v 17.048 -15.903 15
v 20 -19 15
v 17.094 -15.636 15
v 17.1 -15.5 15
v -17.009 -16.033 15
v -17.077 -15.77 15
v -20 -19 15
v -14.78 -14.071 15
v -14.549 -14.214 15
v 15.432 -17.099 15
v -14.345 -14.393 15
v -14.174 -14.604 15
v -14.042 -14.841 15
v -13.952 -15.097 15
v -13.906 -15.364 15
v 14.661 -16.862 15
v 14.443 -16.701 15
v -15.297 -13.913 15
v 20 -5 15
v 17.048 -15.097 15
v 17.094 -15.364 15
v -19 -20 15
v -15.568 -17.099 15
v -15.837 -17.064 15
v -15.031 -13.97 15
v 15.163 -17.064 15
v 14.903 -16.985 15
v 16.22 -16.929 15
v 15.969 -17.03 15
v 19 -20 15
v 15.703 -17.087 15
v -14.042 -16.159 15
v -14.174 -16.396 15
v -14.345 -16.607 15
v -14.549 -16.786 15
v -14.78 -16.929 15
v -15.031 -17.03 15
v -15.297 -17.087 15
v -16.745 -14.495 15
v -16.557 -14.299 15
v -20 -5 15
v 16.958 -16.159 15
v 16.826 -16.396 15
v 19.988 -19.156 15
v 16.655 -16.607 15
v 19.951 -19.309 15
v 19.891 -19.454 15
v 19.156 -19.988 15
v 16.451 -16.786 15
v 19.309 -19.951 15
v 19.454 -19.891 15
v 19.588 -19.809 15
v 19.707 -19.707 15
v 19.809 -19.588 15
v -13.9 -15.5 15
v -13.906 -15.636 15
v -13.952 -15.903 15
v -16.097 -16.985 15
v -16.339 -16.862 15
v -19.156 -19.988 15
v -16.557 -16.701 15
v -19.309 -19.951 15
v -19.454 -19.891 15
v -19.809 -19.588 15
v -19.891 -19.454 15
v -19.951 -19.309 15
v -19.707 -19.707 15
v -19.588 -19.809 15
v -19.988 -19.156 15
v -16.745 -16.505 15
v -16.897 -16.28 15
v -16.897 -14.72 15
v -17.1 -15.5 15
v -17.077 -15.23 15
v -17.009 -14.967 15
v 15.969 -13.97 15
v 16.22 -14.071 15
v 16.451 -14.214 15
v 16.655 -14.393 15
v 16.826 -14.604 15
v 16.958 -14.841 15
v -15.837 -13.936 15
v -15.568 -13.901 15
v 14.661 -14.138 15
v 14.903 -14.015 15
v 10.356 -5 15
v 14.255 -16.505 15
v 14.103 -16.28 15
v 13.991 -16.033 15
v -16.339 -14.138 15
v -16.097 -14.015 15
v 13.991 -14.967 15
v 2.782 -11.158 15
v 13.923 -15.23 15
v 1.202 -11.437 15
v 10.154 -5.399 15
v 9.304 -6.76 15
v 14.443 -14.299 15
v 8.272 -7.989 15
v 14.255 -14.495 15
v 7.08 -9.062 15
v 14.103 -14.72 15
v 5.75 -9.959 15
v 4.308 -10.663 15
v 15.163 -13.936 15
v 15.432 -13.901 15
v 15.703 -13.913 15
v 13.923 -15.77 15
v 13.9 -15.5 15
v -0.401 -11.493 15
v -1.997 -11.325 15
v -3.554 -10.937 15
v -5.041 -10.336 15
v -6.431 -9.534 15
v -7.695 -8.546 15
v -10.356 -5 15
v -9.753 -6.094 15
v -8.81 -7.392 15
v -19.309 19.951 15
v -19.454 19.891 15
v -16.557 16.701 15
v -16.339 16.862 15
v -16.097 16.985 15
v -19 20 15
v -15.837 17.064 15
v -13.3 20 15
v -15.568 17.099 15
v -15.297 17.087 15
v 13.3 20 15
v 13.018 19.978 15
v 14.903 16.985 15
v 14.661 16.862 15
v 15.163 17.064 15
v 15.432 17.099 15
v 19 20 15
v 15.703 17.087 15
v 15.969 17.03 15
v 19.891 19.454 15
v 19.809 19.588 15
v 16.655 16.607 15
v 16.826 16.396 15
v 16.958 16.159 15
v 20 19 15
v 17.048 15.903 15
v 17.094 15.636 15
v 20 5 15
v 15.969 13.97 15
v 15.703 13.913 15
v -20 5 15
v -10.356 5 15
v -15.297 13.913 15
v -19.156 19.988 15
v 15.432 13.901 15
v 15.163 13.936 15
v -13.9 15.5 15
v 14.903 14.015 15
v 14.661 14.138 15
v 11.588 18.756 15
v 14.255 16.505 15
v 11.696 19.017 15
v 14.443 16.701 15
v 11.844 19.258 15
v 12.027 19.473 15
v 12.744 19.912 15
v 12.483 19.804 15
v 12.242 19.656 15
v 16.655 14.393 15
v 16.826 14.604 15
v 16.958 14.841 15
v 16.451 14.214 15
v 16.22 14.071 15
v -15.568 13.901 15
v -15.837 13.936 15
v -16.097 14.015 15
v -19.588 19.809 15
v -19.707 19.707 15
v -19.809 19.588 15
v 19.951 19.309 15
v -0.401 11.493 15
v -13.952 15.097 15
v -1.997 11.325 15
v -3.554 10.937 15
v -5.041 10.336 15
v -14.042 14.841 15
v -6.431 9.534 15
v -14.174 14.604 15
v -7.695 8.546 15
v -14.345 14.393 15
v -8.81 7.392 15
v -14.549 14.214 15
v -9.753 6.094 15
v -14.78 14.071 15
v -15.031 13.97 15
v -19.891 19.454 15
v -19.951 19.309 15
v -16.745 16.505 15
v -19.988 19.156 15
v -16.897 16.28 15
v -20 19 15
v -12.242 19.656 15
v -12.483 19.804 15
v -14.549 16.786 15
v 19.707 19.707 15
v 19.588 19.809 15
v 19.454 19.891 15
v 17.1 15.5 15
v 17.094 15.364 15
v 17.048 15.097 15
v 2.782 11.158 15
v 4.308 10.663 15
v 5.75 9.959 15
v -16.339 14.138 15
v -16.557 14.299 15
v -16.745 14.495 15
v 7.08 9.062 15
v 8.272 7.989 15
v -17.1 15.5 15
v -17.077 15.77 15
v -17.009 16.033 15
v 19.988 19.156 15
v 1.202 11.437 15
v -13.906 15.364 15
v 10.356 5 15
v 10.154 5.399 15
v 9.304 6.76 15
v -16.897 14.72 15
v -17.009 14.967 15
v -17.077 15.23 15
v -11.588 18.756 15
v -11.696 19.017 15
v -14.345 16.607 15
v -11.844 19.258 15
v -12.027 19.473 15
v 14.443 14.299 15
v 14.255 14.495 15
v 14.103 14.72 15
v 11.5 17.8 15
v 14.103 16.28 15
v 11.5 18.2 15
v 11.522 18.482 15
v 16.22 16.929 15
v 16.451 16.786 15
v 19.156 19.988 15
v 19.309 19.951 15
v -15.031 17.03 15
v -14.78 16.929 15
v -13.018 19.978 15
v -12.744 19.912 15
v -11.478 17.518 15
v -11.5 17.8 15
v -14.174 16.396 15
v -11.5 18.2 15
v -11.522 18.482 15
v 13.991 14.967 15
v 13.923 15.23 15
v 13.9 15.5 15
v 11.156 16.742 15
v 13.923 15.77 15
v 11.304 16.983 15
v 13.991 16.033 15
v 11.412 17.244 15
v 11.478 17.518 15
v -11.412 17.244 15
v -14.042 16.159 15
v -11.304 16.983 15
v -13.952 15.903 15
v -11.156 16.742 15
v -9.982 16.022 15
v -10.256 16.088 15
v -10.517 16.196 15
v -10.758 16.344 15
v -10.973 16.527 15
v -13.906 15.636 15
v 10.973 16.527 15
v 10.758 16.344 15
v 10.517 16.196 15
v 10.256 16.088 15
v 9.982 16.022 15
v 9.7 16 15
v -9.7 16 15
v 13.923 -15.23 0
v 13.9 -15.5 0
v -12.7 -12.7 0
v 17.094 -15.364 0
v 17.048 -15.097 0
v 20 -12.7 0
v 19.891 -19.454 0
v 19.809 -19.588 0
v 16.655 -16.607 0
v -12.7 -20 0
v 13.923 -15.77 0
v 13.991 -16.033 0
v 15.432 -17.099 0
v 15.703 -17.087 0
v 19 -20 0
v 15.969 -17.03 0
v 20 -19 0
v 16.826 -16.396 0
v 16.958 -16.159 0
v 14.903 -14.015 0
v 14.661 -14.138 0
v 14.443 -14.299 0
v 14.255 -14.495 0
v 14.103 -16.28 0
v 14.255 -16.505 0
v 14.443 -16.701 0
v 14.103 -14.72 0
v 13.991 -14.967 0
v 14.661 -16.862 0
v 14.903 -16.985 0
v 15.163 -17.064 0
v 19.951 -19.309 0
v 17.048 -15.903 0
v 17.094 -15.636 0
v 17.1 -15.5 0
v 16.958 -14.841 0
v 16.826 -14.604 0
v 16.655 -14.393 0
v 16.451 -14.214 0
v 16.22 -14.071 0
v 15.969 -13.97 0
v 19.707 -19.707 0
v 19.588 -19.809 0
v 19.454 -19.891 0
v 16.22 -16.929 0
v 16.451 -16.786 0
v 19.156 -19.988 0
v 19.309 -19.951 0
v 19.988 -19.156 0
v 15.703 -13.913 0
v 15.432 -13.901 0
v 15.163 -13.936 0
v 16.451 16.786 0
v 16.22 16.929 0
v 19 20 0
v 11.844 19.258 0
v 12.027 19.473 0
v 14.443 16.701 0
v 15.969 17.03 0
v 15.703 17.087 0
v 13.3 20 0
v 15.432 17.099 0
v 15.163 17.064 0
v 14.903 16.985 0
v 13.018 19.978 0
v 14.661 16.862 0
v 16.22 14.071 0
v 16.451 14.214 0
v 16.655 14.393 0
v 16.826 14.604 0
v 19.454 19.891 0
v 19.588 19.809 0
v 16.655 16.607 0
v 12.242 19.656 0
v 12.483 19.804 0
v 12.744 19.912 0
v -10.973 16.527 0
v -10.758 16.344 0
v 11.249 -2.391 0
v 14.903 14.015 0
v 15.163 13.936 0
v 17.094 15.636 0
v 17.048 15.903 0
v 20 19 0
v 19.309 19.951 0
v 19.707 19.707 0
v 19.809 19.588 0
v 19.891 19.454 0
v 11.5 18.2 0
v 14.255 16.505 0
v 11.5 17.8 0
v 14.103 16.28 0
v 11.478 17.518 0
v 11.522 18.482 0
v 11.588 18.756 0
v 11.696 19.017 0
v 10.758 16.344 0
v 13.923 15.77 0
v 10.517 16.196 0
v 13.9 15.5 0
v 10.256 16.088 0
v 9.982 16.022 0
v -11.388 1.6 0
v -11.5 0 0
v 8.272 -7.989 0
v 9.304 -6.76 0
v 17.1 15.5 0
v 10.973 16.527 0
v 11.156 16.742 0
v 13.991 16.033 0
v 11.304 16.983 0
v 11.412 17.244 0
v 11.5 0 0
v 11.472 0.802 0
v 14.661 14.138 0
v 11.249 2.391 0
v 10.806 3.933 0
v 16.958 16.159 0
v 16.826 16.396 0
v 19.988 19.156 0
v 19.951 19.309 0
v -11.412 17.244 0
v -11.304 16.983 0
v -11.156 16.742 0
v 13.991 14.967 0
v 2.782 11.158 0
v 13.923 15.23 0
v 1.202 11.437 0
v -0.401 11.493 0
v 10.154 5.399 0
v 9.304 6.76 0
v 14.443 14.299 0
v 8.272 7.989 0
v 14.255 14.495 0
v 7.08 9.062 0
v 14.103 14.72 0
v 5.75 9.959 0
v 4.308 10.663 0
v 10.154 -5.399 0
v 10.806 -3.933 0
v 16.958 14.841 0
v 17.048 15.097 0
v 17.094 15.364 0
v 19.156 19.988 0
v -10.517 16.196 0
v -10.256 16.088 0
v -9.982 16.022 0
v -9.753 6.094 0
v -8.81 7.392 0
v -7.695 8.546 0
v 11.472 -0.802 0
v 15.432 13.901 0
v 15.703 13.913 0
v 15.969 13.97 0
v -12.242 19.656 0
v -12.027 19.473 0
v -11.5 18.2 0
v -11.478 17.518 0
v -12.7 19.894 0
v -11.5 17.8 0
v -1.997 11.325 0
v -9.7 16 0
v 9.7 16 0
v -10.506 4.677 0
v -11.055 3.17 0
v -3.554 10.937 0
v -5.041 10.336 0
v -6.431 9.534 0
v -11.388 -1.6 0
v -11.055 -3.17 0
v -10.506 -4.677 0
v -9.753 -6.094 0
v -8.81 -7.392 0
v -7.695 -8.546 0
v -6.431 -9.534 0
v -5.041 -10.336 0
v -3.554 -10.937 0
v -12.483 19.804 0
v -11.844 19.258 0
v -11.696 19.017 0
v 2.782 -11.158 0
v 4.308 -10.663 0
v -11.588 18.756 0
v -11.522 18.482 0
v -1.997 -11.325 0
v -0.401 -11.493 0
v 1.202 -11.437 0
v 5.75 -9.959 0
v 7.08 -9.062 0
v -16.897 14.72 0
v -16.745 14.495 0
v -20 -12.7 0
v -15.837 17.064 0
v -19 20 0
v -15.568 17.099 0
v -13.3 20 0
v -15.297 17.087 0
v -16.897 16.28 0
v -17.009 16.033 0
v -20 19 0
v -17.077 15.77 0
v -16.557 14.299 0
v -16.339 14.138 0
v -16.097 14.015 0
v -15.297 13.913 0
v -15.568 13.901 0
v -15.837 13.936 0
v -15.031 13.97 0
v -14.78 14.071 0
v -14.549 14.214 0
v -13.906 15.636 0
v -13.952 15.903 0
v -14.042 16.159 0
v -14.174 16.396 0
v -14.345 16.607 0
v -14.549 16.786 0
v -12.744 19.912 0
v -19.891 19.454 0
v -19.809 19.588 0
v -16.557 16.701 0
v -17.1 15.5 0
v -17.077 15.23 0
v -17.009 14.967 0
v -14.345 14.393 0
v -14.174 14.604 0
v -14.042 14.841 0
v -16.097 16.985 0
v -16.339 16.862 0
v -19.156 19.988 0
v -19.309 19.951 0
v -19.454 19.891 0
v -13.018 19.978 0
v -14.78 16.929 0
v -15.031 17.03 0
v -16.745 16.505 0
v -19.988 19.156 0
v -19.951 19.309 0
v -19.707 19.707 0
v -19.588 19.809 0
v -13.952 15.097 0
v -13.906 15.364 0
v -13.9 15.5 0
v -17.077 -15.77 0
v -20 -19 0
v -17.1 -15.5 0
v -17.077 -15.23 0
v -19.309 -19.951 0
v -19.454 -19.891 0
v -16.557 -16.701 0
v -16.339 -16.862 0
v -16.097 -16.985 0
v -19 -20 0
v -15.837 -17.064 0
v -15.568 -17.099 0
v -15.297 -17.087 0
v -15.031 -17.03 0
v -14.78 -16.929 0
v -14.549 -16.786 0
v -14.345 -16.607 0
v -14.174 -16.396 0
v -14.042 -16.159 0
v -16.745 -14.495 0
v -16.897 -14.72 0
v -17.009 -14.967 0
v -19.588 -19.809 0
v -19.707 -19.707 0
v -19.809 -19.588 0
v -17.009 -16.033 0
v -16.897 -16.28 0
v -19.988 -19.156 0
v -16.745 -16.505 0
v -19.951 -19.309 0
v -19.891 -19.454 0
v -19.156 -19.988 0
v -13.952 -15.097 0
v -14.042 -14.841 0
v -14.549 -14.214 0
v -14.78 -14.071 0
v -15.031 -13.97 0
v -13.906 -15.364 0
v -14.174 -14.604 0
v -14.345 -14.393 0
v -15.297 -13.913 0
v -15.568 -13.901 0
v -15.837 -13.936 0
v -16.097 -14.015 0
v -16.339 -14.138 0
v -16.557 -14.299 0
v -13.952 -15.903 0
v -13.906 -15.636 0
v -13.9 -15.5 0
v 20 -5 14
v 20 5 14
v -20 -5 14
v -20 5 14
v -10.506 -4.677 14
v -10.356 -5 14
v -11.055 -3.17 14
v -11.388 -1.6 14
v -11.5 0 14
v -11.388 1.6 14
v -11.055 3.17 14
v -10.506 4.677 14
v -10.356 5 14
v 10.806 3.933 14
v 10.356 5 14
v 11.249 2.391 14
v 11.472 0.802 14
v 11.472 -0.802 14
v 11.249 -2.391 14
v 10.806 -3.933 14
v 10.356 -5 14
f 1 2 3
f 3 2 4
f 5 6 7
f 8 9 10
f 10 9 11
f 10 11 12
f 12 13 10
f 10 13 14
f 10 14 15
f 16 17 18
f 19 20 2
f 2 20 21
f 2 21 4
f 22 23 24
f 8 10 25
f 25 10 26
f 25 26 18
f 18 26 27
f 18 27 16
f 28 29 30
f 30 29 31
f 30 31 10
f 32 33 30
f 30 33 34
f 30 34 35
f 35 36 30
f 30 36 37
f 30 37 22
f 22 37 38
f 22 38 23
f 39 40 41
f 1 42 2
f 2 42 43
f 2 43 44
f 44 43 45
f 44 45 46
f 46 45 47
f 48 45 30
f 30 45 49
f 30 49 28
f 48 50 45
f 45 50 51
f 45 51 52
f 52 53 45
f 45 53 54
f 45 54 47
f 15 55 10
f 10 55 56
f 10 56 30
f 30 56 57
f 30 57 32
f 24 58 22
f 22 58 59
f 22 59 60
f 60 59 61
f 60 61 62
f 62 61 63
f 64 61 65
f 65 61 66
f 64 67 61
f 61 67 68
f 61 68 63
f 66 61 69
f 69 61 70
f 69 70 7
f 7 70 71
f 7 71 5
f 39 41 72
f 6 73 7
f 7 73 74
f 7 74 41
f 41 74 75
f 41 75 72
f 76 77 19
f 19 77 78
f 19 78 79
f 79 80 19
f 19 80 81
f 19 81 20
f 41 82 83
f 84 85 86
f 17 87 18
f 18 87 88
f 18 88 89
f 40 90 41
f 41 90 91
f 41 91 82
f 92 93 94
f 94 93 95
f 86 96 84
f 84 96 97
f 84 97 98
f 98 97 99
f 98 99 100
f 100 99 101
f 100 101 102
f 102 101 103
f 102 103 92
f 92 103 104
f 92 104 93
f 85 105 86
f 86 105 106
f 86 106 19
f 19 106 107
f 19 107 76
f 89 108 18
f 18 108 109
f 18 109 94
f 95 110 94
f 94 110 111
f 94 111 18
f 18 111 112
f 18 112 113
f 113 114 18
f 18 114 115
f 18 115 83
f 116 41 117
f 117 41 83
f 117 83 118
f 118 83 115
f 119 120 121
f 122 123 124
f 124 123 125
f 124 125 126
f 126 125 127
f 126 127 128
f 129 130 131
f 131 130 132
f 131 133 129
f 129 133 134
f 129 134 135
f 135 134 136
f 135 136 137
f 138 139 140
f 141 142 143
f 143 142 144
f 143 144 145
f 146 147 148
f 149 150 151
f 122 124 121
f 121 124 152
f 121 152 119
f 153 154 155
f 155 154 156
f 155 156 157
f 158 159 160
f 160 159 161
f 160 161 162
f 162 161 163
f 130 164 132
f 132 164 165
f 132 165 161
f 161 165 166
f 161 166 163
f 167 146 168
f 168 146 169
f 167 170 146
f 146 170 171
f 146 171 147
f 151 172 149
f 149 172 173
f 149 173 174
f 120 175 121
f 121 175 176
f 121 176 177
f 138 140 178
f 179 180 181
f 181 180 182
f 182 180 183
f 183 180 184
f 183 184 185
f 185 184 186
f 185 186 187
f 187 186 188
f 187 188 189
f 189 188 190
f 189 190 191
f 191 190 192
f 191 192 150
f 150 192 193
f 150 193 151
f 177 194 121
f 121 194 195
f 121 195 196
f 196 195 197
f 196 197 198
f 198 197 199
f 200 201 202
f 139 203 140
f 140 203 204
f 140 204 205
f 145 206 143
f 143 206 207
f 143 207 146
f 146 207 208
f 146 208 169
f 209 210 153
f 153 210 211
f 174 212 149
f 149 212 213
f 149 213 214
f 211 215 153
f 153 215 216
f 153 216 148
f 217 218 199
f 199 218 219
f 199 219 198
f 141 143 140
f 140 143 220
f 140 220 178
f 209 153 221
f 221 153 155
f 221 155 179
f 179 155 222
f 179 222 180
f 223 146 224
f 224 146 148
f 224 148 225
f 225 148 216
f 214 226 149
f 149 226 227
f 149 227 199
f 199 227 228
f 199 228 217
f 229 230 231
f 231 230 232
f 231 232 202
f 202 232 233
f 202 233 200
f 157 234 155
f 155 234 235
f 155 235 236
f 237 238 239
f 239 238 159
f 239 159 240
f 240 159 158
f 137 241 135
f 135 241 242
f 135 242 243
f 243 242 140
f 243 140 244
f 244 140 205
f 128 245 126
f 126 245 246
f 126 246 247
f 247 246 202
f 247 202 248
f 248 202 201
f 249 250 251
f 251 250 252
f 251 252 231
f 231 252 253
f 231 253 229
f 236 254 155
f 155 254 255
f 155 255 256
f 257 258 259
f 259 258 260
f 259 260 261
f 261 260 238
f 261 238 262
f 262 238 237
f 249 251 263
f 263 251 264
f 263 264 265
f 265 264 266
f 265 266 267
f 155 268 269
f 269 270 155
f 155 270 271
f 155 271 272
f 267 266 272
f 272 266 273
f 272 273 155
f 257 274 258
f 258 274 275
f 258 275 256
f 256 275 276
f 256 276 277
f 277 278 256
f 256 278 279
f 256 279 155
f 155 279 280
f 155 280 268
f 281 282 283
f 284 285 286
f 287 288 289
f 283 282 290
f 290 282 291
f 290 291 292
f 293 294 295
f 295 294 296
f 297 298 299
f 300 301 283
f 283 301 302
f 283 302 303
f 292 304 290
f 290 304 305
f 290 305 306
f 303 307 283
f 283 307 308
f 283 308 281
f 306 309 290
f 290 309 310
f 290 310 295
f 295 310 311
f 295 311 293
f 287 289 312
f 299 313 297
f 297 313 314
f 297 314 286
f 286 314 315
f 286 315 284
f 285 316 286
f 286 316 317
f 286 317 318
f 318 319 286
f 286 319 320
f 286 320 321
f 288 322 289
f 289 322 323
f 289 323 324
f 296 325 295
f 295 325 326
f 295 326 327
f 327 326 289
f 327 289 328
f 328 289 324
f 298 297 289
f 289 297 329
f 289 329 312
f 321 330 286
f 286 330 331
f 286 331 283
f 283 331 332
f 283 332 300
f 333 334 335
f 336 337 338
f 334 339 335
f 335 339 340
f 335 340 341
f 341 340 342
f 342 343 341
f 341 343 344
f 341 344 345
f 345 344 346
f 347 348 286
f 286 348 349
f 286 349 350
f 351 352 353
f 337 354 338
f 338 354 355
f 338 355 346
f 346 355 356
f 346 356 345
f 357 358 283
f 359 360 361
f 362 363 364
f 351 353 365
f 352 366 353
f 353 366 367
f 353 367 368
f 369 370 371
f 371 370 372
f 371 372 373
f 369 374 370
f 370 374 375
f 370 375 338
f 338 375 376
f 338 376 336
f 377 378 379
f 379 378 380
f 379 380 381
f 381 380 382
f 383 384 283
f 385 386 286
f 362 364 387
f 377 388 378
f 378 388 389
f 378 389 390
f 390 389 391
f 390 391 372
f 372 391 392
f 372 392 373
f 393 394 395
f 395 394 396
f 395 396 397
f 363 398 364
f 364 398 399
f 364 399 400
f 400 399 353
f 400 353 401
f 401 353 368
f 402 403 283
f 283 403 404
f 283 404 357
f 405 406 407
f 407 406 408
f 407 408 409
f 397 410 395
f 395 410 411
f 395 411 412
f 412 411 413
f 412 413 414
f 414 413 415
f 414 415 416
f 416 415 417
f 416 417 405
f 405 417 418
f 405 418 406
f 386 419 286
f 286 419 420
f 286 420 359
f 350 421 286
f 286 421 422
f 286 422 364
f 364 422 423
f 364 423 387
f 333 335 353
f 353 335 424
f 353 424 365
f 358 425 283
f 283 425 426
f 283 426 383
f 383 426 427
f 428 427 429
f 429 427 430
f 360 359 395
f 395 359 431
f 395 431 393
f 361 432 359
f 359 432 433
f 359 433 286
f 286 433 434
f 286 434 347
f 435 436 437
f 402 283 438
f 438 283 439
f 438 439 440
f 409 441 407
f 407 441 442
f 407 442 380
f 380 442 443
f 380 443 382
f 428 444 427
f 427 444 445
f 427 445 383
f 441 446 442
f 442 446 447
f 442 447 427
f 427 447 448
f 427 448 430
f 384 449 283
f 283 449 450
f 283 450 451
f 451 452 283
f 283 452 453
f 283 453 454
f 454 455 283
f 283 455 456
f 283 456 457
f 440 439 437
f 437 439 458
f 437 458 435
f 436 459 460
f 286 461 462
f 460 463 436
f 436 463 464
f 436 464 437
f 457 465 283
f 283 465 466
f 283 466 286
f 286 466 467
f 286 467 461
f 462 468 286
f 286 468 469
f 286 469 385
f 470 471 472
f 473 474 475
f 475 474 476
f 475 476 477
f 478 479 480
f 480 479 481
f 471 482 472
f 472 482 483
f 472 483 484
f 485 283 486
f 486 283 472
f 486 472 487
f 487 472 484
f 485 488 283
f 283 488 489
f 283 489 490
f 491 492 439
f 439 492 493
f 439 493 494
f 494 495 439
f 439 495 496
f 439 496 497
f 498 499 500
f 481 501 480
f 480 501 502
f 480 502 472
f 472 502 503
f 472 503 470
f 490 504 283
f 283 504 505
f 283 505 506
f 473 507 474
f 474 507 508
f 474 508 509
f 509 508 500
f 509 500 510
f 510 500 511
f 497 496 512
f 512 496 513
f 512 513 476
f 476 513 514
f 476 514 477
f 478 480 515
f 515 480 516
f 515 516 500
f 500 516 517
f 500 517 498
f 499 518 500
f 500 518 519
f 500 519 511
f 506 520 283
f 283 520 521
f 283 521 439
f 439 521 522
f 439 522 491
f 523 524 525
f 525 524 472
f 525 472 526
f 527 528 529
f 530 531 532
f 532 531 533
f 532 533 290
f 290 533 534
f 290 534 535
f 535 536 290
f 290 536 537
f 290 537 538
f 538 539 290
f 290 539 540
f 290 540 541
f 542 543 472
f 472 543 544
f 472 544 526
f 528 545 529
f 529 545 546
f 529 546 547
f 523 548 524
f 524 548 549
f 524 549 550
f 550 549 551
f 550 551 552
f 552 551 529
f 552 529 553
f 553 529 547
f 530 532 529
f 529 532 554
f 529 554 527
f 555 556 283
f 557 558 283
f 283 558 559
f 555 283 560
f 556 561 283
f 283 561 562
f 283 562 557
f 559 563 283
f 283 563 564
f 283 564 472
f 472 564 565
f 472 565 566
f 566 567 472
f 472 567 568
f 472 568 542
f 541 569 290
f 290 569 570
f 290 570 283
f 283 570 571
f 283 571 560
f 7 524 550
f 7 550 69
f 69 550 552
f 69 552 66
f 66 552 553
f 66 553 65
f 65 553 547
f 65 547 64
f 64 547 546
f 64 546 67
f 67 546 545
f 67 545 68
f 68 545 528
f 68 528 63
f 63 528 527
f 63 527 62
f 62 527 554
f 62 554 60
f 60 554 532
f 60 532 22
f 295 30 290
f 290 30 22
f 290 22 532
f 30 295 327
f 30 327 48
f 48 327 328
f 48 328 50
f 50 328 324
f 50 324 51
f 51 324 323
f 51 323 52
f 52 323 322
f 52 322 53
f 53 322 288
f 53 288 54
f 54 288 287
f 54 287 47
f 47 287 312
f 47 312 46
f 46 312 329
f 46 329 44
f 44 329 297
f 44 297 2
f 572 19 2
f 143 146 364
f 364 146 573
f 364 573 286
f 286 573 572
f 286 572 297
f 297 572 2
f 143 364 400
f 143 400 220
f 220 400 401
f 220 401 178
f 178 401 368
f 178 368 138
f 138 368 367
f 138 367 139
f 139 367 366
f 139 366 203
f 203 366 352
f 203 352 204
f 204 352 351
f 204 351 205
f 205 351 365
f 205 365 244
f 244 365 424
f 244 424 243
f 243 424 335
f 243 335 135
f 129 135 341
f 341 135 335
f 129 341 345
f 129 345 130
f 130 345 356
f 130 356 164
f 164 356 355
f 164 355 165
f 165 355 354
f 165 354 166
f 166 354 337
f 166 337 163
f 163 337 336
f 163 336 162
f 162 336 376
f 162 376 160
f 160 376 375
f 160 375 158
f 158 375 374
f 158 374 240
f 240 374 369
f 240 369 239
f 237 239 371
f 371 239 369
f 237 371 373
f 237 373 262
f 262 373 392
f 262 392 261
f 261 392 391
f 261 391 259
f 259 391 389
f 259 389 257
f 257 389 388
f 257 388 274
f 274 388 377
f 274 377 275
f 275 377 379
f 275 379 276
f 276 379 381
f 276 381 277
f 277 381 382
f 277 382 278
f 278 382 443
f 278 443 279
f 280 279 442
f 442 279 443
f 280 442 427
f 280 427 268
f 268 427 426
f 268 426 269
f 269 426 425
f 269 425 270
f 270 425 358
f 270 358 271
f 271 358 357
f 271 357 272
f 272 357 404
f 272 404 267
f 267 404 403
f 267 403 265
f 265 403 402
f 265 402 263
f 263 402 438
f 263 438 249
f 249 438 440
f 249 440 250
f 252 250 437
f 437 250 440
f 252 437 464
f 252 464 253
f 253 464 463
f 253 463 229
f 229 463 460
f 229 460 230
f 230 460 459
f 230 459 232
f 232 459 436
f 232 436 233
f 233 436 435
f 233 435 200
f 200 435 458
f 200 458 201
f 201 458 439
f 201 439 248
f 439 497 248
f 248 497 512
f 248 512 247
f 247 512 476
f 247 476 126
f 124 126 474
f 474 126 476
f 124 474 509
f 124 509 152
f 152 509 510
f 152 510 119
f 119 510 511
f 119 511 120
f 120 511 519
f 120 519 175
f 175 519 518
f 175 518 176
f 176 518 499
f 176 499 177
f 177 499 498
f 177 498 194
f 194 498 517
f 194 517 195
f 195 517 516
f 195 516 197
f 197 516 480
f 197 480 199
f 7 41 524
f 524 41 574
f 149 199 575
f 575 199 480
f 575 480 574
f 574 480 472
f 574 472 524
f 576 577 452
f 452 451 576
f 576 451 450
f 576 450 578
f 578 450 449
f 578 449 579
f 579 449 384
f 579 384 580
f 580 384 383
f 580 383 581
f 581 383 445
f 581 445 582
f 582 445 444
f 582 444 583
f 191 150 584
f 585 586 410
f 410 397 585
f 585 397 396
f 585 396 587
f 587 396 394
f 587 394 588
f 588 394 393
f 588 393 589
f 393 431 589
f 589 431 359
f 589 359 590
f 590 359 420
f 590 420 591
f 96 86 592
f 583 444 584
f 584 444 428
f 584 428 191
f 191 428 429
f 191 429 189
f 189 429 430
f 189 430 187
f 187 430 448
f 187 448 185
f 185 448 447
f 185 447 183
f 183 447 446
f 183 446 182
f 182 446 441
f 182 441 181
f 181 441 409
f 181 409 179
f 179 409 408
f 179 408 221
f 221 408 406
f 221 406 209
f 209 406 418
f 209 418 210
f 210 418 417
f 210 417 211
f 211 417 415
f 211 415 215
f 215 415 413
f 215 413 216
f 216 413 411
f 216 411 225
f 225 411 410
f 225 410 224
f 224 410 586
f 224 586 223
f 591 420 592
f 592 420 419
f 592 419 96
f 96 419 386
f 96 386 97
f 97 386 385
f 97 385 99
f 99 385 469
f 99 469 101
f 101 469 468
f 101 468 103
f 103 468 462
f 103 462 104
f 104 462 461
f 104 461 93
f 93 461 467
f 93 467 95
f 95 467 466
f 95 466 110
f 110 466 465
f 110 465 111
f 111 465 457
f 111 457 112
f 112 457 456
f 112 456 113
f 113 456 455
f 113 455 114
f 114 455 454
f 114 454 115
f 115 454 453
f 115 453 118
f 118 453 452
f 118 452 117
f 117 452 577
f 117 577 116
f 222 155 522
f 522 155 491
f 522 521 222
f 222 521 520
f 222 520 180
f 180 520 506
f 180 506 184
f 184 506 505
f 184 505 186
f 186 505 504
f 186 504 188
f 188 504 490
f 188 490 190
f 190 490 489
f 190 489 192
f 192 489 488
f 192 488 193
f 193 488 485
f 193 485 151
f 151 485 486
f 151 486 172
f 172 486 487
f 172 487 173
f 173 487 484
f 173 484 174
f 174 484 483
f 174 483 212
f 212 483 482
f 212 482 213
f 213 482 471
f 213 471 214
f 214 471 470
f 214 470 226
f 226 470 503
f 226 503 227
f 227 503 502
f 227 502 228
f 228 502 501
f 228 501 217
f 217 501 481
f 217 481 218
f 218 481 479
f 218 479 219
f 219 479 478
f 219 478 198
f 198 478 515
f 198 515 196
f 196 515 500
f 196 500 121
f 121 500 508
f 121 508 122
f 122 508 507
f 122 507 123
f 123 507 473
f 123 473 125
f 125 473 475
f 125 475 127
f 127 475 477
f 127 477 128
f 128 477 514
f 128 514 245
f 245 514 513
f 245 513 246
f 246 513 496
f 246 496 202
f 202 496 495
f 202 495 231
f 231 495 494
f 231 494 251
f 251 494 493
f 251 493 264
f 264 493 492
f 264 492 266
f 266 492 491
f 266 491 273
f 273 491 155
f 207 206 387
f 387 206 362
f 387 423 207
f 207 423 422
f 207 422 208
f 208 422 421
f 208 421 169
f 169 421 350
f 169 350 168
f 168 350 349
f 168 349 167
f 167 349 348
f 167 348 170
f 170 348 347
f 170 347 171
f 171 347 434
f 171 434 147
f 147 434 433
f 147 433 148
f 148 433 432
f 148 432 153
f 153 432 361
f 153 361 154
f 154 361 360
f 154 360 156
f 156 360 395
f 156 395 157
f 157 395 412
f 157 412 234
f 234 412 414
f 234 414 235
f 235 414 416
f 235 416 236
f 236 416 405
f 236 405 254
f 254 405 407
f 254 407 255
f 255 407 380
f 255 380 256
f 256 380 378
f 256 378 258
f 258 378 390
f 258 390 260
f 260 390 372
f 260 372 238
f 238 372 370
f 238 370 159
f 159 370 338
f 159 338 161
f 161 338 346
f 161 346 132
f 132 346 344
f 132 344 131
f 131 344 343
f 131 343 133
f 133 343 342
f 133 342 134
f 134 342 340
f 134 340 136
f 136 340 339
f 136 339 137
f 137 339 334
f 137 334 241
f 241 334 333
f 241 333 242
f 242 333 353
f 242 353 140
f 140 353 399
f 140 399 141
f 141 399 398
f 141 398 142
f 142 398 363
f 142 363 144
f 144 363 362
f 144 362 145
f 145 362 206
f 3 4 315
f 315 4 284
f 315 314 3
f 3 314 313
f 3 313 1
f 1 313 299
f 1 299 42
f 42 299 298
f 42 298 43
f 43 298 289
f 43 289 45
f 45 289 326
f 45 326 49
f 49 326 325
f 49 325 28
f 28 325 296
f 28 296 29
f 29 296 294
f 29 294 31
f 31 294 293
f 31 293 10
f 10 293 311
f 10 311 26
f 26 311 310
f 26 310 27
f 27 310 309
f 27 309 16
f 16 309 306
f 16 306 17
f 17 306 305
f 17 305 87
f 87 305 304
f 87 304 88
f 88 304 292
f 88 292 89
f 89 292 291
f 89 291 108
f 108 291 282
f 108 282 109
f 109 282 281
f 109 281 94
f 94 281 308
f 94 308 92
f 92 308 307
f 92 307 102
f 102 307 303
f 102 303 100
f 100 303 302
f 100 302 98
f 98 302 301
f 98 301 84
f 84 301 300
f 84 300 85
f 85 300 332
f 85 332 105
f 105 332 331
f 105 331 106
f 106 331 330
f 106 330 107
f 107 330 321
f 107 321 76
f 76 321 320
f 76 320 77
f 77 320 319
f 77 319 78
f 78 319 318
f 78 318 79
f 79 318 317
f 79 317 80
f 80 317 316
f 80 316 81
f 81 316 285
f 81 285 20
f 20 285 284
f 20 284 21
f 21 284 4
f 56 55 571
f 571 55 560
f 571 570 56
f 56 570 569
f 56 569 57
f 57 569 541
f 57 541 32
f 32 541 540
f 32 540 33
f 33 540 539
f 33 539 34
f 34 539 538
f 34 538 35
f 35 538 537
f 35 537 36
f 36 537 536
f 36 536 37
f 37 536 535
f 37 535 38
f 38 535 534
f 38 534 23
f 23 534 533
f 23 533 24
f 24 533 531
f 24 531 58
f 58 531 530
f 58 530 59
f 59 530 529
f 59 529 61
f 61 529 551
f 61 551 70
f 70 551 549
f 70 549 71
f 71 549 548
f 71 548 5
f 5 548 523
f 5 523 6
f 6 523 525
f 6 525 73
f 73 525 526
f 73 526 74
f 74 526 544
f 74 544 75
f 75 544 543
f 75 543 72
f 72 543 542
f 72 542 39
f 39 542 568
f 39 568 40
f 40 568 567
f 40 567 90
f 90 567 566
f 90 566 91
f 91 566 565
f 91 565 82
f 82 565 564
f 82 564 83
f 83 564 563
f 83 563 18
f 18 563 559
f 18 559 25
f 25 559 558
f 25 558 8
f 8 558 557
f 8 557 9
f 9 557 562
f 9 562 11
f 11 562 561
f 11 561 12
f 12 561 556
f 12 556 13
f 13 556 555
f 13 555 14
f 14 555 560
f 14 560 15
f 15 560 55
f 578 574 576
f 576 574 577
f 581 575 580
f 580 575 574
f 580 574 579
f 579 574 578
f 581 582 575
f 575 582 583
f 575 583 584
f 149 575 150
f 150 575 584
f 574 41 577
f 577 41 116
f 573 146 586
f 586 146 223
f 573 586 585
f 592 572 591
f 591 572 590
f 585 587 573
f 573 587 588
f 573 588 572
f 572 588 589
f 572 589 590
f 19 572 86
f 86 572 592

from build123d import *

# Parameters (mm, degrees)
SKETCH1_R           = 11.5
SKETCH1_R_2         = 1.6
BOSS_EXTRUDE1_DEPTH = 15
SKETCH2_W           = 40
SKETCH2_H           = 10
CUT_EXTRUDE1_DEPTH  = 1


with BuildPart() as part:
    # Sketch1 → Boss-Extrude1 (new body)
    with BuildSketch(Plane.XY):
        with BuildLine():
            Line((-20, 19), (-20, -19))
            ThreePointArc((-20, -19), (-19.707106781, -19.707106781), (-19, -20))
            Line((-19, -20), (19, -20))
            ThreePointArc((19, -20), (19.707106781, -19.707106781), (20, -19))
            Line((20, -19), (20, 19))
            ThreePointArc((20, 19), (19.707106781, 19.707106781), (19, 20))
            Line((19, 20), (13.3, 20))
            ThreePointArc((13.3, 20), (12.027207794, 19.472792206), (11.5, 18.2))
            Line((11.5, 18.2), (11.5, 17.8))
            ThreePointArc((11.5, 17.8), (10.972792206, 16.527207794), (9.7, 16))
            Line((9.7, 16), (-9.7, 16))
            ThreePointArc((-9.7, 16), (-10.972792206, 16.527207794), (-11.5, 17.8))
            Line((-11.5, 17.8), (-11.5, 18.2))
            ThreePointArc((-11.5, 18.2), (-12.027207794, 19.472792206), (-13.3, 20))
            Line((-13.3, 20), (-19, 20))
            ThreePointArc((-19, 20), (-19.707106781, 19.707106781), (-20, 19))
        make_face()
        Circle(SKETCH1_R, mode=Mode.SUBTRACT)
        with Locations((-15.5, 15.5)):
            Circle(SKETCH1_R_2, mode=Mode.SUBTRACT)
        with Locations((15.5, 15.5)):
            Circle(SKETCH1_R_2, mode=Mode.SUBTRACT)
        with Locations((15.5, -15.5)):
            Circle(SKETCH1_R_2, mode=Mode.SUBTRACT)
        with Locations((-15.5, -15.5)):
            Circle(SKETCH1_R_2, mode=Mode.SUBTRACT)
    extrude(amount=BOSS_EXTRUDE1_DEPTH)

    # Sketch2 → Cut-Extrude1 (cut)
    with BuildSketch(Plane.XY.offset(15)):
        Rectangle(SKETCH2_W, SKETCH2_H)
    extrude(amount=-CUT_EXTRUDE1_DEPTH, mode=Mode.SUBTRACT)


solid = part.part
